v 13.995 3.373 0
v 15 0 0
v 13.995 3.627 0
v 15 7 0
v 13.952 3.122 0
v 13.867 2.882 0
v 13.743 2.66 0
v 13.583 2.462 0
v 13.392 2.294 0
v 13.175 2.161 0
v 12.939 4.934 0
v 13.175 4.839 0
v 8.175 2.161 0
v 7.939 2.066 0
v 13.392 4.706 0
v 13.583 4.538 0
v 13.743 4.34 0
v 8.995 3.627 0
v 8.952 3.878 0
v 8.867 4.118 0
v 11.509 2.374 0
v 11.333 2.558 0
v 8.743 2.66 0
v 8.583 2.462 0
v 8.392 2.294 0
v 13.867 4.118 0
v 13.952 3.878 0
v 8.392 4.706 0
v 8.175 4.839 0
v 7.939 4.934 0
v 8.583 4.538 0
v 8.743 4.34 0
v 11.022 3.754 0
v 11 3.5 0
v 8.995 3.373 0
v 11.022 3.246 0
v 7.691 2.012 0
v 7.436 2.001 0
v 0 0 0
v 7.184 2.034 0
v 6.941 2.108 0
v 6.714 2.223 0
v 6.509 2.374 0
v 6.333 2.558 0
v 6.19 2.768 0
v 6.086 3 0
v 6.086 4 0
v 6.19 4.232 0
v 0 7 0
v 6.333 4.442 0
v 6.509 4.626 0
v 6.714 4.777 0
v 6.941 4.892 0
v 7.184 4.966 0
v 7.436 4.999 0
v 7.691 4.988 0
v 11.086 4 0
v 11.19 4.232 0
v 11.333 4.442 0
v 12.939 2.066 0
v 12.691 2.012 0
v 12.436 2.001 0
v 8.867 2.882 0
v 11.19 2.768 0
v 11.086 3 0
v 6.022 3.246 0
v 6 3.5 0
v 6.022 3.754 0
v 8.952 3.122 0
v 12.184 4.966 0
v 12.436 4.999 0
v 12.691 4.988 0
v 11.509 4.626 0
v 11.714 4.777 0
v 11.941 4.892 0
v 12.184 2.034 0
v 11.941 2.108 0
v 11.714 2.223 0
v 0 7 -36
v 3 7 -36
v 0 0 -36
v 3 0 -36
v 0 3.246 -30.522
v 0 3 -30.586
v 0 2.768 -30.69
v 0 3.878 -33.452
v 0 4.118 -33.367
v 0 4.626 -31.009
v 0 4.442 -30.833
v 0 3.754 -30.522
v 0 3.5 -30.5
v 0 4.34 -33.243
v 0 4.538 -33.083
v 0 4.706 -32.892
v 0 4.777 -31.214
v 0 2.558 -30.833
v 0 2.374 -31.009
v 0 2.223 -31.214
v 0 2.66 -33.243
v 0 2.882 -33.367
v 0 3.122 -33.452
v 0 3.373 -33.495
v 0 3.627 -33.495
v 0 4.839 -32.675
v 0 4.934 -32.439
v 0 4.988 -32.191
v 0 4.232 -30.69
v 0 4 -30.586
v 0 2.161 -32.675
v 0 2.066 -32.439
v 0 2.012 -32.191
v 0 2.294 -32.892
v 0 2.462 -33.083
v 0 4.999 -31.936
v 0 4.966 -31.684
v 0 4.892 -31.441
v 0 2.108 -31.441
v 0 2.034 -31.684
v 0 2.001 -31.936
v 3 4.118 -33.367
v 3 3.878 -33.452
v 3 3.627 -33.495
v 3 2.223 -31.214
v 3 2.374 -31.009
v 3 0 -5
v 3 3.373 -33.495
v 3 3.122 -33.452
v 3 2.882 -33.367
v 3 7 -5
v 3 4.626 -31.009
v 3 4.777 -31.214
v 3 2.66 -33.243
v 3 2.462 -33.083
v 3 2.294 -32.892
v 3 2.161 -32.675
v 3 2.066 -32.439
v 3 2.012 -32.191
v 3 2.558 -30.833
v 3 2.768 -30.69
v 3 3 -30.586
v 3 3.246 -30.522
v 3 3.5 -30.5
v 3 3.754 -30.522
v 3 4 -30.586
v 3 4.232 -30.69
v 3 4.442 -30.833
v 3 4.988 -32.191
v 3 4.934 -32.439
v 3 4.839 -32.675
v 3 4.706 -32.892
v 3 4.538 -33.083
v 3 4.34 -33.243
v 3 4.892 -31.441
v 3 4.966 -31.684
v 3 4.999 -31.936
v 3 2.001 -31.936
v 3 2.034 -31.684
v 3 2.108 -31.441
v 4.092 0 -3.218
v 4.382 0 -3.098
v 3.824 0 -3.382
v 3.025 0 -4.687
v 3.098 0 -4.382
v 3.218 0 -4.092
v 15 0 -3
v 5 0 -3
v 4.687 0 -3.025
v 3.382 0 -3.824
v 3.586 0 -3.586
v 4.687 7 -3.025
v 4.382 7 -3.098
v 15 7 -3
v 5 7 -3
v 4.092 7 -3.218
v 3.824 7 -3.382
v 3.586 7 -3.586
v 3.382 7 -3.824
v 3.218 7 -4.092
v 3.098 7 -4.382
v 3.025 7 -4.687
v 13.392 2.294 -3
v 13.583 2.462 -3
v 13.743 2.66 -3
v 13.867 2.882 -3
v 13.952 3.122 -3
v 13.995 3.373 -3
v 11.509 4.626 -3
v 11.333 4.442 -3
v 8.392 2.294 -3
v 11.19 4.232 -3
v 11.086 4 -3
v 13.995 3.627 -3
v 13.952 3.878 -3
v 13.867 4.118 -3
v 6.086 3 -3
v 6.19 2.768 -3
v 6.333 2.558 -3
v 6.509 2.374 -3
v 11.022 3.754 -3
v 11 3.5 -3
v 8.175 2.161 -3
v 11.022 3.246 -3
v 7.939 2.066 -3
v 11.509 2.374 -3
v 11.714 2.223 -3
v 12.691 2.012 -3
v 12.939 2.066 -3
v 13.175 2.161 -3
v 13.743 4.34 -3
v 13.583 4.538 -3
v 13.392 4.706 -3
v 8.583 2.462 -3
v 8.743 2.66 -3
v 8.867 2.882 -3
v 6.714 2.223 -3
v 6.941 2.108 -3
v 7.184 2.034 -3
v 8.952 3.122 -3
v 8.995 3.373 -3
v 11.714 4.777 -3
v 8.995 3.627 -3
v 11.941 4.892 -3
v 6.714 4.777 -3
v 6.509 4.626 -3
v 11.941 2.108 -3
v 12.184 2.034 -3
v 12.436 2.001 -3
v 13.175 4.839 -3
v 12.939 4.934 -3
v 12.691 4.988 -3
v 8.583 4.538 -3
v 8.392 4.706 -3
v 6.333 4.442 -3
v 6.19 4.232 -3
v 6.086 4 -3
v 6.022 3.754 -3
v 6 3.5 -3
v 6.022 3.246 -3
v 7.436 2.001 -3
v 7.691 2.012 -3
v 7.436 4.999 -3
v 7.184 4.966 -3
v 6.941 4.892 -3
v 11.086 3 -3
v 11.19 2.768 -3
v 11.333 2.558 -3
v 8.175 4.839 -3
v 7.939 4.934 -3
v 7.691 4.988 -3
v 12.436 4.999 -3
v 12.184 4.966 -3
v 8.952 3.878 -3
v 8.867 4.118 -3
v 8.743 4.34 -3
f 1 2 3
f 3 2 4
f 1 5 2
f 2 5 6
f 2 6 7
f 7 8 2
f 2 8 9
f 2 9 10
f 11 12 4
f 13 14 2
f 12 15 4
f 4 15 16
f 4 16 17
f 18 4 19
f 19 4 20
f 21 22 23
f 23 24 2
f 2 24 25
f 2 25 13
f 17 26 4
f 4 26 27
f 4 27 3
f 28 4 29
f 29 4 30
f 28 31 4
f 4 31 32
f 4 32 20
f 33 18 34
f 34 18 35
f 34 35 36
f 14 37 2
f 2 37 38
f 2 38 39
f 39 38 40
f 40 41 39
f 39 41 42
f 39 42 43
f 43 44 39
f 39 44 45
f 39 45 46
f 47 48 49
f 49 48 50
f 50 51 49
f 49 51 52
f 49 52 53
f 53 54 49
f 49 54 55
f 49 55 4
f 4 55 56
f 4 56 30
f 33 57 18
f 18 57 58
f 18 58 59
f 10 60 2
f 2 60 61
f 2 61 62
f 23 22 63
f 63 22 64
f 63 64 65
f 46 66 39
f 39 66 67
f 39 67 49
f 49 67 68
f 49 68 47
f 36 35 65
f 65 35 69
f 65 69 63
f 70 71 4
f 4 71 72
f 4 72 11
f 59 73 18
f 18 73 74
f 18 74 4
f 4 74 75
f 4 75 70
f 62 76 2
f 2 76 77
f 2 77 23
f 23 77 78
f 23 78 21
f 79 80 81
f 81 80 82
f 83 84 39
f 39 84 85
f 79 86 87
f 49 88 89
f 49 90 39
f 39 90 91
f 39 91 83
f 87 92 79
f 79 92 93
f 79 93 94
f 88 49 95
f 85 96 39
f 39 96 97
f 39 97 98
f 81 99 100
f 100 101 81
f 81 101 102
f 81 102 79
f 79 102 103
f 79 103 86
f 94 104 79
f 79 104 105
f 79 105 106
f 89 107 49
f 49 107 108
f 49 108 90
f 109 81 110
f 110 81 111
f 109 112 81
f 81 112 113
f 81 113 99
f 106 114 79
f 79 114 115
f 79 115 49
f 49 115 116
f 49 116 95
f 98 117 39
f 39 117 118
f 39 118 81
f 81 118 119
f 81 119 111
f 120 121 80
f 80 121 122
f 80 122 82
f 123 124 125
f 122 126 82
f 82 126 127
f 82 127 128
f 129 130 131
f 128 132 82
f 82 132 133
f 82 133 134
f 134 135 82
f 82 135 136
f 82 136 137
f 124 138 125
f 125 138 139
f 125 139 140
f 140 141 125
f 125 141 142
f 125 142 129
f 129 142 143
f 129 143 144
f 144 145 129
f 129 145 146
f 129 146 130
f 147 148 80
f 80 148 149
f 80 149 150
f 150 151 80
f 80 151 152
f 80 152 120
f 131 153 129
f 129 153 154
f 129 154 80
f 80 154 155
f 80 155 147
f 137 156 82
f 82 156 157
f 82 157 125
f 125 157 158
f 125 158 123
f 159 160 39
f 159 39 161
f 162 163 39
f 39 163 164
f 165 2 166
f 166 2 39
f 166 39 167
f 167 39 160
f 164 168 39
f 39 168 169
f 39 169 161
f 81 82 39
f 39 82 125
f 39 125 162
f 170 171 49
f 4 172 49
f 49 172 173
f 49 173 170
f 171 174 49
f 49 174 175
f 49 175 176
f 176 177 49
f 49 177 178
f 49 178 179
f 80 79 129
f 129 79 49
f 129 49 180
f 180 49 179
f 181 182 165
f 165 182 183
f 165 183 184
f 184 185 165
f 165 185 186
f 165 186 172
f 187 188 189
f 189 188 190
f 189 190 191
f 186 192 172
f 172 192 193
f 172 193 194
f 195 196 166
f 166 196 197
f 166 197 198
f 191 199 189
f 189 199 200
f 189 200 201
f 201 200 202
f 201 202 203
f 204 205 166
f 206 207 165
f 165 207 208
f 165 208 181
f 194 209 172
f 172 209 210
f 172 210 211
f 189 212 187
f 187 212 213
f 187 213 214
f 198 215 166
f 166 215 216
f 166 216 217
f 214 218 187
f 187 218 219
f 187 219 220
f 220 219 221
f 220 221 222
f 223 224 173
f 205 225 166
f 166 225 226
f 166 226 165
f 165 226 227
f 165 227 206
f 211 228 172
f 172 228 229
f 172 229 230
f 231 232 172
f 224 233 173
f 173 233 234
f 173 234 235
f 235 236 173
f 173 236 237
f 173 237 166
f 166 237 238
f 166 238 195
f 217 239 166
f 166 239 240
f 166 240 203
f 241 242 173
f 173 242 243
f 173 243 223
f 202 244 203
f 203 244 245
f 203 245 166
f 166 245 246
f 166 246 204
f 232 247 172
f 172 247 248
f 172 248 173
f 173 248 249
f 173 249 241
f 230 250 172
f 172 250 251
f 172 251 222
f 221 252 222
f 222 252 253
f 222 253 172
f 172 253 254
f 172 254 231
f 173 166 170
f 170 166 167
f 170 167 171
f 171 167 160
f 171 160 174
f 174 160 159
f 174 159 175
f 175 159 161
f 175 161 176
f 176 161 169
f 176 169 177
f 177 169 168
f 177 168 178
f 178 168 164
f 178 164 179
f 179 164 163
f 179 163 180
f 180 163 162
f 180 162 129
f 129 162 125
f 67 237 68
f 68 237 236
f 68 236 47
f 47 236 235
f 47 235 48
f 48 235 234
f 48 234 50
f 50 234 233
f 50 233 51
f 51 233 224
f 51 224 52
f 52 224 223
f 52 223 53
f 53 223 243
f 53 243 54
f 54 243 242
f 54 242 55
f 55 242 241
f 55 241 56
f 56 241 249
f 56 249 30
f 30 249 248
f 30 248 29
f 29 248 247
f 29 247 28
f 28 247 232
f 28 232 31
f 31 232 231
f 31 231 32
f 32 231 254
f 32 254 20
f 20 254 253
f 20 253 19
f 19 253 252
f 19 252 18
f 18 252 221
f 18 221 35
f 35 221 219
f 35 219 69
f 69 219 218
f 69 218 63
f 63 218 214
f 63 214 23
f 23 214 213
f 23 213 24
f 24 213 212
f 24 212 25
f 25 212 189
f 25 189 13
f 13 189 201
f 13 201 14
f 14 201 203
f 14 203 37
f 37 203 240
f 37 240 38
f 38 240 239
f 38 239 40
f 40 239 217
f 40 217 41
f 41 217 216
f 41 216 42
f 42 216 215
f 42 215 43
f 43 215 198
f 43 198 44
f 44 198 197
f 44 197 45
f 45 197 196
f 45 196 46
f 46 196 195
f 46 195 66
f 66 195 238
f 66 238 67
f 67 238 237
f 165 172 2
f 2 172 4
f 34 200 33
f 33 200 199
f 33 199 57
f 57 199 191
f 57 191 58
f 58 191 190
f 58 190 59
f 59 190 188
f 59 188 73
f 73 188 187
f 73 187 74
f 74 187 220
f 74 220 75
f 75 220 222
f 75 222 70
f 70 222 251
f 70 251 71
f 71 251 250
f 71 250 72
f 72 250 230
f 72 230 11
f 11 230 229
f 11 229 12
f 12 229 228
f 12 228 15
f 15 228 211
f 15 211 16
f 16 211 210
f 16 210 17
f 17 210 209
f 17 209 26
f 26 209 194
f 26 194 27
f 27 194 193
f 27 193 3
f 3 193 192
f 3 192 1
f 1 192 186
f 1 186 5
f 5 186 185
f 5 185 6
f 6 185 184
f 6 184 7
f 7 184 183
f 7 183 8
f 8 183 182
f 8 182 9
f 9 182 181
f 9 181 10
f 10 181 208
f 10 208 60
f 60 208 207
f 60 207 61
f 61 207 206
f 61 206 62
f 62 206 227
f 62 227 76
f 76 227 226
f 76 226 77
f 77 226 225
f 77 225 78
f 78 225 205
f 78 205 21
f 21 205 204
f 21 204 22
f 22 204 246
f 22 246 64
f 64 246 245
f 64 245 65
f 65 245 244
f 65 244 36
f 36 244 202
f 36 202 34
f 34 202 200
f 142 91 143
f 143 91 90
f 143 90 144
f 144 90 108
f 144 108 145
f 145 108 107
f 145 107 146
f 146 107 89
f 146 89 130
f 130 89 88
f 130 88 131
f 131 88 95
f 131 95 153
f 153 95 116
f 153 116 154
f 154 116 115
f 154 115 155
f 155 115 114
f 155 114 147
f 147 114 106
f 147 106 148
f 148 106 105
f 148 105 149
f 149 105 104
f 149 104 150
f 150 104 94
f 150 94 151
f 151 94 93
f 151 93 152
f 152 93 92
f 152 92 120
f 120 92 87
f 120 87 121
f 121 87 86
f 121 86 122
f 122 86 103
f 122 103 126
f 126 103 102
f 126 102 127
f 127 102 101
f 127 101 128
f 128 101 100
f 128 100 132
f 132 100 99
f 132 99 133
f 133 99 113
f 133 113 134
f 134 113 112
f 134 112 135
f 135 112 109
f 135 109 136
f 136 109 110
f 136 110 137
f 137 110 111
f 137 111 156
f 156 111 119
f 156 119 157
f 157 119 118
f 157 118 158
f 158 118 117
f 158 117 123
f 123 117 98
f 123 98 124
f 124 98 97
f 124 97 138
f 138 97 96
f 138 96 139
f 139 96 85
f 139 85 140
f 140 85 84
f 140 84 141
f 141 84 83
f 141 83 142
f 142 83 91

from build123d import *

# Parameters (mm, degrees)
BOSS_EXTRUDE1_DEPTH = 7
FILLET1_R           = 2
SKETCH2_R           = 1.5
CUT_EXTRUDE1_DEPTH  = 7
SKETCH3_W           = 5
SKETCH3_H           = 7
BOSS_EXTRUDE2_DEPTH = 3
SKETCH4_R           = 1.5
CUT_EXTRUDE2_DEPTH  = 3
SKETCH5_R           = 1.5
CUT_EXTRUDE3_DEPTH  = 3


with BuildPart() as part:
    # Sketch1 → Boss-Extrude1 (new body)
    with BuildSketch(Plane(origin=(0, 0, 0), x_dir=(1, 0, 0), z_dir=(0, 1, 0))):
        Polygon((0, 0), (10, 0), (10, 3), (3, 3), (3, 36), (0, 36), align=None)
    extrude(amount=BOSS_EXTRUDE1_DEPTH)

    # Fillet1
    fillet1_edges = [part.edges().sort_by_distance(p)[0] for p in [
        (3, 3.5, -3),
    ]]
    fillet(fillet1_edges, radius=FILLET1_R)

    # Sketch2 → Cut-Extrude1 (cut)
    with BuildSketch(Plane(origin=(0, 0, -3), x_dir=(-1, 0, 0), z_dir=(0, 0, -1))):
        with Locations((-7.5, 3.5)):
            Circle(SKETCH2_R)
    extrude(amount=-CUT_EXTRUDE1_DEPTH, mode=Mode.SUBTRACT)

    # Sketch3 → Boss-Extrude2 (add)
    with BuildSketch(Plane.XY):
        with Locations((12.5, 3.5)):
            Rectangle(SKETCH3_W, SKETCH3_H)
    extrude(amount=-BOSS_EXTRUDE2_DEPTH)

    # Sketch4 → Cut-Extrude2 (cut)
    with BuildSketch(Plane(origin=(0, 0, -3), x_dir=(-1, 0, 0), z_dir=(0, 0, -1))):
        with Locations((-12.5, 3.5)):
            Circle(SKETCH4_R)
    extrude(amount=-CUT_EXTRUDE2_DEPTH, mode=Mode.SUBTRACT)

    # Sketch5 → Cut-Extrude3 (cut)
    with BuildSketch(Plane.ZY):
        with Locations((-32, 3.5)):
            Circle(SKETCH5_R)
    extrude(amount=-CUT_EXTRUDE3_DEPTH, mode=Mode.SUBTRACT)


solid = part.part
